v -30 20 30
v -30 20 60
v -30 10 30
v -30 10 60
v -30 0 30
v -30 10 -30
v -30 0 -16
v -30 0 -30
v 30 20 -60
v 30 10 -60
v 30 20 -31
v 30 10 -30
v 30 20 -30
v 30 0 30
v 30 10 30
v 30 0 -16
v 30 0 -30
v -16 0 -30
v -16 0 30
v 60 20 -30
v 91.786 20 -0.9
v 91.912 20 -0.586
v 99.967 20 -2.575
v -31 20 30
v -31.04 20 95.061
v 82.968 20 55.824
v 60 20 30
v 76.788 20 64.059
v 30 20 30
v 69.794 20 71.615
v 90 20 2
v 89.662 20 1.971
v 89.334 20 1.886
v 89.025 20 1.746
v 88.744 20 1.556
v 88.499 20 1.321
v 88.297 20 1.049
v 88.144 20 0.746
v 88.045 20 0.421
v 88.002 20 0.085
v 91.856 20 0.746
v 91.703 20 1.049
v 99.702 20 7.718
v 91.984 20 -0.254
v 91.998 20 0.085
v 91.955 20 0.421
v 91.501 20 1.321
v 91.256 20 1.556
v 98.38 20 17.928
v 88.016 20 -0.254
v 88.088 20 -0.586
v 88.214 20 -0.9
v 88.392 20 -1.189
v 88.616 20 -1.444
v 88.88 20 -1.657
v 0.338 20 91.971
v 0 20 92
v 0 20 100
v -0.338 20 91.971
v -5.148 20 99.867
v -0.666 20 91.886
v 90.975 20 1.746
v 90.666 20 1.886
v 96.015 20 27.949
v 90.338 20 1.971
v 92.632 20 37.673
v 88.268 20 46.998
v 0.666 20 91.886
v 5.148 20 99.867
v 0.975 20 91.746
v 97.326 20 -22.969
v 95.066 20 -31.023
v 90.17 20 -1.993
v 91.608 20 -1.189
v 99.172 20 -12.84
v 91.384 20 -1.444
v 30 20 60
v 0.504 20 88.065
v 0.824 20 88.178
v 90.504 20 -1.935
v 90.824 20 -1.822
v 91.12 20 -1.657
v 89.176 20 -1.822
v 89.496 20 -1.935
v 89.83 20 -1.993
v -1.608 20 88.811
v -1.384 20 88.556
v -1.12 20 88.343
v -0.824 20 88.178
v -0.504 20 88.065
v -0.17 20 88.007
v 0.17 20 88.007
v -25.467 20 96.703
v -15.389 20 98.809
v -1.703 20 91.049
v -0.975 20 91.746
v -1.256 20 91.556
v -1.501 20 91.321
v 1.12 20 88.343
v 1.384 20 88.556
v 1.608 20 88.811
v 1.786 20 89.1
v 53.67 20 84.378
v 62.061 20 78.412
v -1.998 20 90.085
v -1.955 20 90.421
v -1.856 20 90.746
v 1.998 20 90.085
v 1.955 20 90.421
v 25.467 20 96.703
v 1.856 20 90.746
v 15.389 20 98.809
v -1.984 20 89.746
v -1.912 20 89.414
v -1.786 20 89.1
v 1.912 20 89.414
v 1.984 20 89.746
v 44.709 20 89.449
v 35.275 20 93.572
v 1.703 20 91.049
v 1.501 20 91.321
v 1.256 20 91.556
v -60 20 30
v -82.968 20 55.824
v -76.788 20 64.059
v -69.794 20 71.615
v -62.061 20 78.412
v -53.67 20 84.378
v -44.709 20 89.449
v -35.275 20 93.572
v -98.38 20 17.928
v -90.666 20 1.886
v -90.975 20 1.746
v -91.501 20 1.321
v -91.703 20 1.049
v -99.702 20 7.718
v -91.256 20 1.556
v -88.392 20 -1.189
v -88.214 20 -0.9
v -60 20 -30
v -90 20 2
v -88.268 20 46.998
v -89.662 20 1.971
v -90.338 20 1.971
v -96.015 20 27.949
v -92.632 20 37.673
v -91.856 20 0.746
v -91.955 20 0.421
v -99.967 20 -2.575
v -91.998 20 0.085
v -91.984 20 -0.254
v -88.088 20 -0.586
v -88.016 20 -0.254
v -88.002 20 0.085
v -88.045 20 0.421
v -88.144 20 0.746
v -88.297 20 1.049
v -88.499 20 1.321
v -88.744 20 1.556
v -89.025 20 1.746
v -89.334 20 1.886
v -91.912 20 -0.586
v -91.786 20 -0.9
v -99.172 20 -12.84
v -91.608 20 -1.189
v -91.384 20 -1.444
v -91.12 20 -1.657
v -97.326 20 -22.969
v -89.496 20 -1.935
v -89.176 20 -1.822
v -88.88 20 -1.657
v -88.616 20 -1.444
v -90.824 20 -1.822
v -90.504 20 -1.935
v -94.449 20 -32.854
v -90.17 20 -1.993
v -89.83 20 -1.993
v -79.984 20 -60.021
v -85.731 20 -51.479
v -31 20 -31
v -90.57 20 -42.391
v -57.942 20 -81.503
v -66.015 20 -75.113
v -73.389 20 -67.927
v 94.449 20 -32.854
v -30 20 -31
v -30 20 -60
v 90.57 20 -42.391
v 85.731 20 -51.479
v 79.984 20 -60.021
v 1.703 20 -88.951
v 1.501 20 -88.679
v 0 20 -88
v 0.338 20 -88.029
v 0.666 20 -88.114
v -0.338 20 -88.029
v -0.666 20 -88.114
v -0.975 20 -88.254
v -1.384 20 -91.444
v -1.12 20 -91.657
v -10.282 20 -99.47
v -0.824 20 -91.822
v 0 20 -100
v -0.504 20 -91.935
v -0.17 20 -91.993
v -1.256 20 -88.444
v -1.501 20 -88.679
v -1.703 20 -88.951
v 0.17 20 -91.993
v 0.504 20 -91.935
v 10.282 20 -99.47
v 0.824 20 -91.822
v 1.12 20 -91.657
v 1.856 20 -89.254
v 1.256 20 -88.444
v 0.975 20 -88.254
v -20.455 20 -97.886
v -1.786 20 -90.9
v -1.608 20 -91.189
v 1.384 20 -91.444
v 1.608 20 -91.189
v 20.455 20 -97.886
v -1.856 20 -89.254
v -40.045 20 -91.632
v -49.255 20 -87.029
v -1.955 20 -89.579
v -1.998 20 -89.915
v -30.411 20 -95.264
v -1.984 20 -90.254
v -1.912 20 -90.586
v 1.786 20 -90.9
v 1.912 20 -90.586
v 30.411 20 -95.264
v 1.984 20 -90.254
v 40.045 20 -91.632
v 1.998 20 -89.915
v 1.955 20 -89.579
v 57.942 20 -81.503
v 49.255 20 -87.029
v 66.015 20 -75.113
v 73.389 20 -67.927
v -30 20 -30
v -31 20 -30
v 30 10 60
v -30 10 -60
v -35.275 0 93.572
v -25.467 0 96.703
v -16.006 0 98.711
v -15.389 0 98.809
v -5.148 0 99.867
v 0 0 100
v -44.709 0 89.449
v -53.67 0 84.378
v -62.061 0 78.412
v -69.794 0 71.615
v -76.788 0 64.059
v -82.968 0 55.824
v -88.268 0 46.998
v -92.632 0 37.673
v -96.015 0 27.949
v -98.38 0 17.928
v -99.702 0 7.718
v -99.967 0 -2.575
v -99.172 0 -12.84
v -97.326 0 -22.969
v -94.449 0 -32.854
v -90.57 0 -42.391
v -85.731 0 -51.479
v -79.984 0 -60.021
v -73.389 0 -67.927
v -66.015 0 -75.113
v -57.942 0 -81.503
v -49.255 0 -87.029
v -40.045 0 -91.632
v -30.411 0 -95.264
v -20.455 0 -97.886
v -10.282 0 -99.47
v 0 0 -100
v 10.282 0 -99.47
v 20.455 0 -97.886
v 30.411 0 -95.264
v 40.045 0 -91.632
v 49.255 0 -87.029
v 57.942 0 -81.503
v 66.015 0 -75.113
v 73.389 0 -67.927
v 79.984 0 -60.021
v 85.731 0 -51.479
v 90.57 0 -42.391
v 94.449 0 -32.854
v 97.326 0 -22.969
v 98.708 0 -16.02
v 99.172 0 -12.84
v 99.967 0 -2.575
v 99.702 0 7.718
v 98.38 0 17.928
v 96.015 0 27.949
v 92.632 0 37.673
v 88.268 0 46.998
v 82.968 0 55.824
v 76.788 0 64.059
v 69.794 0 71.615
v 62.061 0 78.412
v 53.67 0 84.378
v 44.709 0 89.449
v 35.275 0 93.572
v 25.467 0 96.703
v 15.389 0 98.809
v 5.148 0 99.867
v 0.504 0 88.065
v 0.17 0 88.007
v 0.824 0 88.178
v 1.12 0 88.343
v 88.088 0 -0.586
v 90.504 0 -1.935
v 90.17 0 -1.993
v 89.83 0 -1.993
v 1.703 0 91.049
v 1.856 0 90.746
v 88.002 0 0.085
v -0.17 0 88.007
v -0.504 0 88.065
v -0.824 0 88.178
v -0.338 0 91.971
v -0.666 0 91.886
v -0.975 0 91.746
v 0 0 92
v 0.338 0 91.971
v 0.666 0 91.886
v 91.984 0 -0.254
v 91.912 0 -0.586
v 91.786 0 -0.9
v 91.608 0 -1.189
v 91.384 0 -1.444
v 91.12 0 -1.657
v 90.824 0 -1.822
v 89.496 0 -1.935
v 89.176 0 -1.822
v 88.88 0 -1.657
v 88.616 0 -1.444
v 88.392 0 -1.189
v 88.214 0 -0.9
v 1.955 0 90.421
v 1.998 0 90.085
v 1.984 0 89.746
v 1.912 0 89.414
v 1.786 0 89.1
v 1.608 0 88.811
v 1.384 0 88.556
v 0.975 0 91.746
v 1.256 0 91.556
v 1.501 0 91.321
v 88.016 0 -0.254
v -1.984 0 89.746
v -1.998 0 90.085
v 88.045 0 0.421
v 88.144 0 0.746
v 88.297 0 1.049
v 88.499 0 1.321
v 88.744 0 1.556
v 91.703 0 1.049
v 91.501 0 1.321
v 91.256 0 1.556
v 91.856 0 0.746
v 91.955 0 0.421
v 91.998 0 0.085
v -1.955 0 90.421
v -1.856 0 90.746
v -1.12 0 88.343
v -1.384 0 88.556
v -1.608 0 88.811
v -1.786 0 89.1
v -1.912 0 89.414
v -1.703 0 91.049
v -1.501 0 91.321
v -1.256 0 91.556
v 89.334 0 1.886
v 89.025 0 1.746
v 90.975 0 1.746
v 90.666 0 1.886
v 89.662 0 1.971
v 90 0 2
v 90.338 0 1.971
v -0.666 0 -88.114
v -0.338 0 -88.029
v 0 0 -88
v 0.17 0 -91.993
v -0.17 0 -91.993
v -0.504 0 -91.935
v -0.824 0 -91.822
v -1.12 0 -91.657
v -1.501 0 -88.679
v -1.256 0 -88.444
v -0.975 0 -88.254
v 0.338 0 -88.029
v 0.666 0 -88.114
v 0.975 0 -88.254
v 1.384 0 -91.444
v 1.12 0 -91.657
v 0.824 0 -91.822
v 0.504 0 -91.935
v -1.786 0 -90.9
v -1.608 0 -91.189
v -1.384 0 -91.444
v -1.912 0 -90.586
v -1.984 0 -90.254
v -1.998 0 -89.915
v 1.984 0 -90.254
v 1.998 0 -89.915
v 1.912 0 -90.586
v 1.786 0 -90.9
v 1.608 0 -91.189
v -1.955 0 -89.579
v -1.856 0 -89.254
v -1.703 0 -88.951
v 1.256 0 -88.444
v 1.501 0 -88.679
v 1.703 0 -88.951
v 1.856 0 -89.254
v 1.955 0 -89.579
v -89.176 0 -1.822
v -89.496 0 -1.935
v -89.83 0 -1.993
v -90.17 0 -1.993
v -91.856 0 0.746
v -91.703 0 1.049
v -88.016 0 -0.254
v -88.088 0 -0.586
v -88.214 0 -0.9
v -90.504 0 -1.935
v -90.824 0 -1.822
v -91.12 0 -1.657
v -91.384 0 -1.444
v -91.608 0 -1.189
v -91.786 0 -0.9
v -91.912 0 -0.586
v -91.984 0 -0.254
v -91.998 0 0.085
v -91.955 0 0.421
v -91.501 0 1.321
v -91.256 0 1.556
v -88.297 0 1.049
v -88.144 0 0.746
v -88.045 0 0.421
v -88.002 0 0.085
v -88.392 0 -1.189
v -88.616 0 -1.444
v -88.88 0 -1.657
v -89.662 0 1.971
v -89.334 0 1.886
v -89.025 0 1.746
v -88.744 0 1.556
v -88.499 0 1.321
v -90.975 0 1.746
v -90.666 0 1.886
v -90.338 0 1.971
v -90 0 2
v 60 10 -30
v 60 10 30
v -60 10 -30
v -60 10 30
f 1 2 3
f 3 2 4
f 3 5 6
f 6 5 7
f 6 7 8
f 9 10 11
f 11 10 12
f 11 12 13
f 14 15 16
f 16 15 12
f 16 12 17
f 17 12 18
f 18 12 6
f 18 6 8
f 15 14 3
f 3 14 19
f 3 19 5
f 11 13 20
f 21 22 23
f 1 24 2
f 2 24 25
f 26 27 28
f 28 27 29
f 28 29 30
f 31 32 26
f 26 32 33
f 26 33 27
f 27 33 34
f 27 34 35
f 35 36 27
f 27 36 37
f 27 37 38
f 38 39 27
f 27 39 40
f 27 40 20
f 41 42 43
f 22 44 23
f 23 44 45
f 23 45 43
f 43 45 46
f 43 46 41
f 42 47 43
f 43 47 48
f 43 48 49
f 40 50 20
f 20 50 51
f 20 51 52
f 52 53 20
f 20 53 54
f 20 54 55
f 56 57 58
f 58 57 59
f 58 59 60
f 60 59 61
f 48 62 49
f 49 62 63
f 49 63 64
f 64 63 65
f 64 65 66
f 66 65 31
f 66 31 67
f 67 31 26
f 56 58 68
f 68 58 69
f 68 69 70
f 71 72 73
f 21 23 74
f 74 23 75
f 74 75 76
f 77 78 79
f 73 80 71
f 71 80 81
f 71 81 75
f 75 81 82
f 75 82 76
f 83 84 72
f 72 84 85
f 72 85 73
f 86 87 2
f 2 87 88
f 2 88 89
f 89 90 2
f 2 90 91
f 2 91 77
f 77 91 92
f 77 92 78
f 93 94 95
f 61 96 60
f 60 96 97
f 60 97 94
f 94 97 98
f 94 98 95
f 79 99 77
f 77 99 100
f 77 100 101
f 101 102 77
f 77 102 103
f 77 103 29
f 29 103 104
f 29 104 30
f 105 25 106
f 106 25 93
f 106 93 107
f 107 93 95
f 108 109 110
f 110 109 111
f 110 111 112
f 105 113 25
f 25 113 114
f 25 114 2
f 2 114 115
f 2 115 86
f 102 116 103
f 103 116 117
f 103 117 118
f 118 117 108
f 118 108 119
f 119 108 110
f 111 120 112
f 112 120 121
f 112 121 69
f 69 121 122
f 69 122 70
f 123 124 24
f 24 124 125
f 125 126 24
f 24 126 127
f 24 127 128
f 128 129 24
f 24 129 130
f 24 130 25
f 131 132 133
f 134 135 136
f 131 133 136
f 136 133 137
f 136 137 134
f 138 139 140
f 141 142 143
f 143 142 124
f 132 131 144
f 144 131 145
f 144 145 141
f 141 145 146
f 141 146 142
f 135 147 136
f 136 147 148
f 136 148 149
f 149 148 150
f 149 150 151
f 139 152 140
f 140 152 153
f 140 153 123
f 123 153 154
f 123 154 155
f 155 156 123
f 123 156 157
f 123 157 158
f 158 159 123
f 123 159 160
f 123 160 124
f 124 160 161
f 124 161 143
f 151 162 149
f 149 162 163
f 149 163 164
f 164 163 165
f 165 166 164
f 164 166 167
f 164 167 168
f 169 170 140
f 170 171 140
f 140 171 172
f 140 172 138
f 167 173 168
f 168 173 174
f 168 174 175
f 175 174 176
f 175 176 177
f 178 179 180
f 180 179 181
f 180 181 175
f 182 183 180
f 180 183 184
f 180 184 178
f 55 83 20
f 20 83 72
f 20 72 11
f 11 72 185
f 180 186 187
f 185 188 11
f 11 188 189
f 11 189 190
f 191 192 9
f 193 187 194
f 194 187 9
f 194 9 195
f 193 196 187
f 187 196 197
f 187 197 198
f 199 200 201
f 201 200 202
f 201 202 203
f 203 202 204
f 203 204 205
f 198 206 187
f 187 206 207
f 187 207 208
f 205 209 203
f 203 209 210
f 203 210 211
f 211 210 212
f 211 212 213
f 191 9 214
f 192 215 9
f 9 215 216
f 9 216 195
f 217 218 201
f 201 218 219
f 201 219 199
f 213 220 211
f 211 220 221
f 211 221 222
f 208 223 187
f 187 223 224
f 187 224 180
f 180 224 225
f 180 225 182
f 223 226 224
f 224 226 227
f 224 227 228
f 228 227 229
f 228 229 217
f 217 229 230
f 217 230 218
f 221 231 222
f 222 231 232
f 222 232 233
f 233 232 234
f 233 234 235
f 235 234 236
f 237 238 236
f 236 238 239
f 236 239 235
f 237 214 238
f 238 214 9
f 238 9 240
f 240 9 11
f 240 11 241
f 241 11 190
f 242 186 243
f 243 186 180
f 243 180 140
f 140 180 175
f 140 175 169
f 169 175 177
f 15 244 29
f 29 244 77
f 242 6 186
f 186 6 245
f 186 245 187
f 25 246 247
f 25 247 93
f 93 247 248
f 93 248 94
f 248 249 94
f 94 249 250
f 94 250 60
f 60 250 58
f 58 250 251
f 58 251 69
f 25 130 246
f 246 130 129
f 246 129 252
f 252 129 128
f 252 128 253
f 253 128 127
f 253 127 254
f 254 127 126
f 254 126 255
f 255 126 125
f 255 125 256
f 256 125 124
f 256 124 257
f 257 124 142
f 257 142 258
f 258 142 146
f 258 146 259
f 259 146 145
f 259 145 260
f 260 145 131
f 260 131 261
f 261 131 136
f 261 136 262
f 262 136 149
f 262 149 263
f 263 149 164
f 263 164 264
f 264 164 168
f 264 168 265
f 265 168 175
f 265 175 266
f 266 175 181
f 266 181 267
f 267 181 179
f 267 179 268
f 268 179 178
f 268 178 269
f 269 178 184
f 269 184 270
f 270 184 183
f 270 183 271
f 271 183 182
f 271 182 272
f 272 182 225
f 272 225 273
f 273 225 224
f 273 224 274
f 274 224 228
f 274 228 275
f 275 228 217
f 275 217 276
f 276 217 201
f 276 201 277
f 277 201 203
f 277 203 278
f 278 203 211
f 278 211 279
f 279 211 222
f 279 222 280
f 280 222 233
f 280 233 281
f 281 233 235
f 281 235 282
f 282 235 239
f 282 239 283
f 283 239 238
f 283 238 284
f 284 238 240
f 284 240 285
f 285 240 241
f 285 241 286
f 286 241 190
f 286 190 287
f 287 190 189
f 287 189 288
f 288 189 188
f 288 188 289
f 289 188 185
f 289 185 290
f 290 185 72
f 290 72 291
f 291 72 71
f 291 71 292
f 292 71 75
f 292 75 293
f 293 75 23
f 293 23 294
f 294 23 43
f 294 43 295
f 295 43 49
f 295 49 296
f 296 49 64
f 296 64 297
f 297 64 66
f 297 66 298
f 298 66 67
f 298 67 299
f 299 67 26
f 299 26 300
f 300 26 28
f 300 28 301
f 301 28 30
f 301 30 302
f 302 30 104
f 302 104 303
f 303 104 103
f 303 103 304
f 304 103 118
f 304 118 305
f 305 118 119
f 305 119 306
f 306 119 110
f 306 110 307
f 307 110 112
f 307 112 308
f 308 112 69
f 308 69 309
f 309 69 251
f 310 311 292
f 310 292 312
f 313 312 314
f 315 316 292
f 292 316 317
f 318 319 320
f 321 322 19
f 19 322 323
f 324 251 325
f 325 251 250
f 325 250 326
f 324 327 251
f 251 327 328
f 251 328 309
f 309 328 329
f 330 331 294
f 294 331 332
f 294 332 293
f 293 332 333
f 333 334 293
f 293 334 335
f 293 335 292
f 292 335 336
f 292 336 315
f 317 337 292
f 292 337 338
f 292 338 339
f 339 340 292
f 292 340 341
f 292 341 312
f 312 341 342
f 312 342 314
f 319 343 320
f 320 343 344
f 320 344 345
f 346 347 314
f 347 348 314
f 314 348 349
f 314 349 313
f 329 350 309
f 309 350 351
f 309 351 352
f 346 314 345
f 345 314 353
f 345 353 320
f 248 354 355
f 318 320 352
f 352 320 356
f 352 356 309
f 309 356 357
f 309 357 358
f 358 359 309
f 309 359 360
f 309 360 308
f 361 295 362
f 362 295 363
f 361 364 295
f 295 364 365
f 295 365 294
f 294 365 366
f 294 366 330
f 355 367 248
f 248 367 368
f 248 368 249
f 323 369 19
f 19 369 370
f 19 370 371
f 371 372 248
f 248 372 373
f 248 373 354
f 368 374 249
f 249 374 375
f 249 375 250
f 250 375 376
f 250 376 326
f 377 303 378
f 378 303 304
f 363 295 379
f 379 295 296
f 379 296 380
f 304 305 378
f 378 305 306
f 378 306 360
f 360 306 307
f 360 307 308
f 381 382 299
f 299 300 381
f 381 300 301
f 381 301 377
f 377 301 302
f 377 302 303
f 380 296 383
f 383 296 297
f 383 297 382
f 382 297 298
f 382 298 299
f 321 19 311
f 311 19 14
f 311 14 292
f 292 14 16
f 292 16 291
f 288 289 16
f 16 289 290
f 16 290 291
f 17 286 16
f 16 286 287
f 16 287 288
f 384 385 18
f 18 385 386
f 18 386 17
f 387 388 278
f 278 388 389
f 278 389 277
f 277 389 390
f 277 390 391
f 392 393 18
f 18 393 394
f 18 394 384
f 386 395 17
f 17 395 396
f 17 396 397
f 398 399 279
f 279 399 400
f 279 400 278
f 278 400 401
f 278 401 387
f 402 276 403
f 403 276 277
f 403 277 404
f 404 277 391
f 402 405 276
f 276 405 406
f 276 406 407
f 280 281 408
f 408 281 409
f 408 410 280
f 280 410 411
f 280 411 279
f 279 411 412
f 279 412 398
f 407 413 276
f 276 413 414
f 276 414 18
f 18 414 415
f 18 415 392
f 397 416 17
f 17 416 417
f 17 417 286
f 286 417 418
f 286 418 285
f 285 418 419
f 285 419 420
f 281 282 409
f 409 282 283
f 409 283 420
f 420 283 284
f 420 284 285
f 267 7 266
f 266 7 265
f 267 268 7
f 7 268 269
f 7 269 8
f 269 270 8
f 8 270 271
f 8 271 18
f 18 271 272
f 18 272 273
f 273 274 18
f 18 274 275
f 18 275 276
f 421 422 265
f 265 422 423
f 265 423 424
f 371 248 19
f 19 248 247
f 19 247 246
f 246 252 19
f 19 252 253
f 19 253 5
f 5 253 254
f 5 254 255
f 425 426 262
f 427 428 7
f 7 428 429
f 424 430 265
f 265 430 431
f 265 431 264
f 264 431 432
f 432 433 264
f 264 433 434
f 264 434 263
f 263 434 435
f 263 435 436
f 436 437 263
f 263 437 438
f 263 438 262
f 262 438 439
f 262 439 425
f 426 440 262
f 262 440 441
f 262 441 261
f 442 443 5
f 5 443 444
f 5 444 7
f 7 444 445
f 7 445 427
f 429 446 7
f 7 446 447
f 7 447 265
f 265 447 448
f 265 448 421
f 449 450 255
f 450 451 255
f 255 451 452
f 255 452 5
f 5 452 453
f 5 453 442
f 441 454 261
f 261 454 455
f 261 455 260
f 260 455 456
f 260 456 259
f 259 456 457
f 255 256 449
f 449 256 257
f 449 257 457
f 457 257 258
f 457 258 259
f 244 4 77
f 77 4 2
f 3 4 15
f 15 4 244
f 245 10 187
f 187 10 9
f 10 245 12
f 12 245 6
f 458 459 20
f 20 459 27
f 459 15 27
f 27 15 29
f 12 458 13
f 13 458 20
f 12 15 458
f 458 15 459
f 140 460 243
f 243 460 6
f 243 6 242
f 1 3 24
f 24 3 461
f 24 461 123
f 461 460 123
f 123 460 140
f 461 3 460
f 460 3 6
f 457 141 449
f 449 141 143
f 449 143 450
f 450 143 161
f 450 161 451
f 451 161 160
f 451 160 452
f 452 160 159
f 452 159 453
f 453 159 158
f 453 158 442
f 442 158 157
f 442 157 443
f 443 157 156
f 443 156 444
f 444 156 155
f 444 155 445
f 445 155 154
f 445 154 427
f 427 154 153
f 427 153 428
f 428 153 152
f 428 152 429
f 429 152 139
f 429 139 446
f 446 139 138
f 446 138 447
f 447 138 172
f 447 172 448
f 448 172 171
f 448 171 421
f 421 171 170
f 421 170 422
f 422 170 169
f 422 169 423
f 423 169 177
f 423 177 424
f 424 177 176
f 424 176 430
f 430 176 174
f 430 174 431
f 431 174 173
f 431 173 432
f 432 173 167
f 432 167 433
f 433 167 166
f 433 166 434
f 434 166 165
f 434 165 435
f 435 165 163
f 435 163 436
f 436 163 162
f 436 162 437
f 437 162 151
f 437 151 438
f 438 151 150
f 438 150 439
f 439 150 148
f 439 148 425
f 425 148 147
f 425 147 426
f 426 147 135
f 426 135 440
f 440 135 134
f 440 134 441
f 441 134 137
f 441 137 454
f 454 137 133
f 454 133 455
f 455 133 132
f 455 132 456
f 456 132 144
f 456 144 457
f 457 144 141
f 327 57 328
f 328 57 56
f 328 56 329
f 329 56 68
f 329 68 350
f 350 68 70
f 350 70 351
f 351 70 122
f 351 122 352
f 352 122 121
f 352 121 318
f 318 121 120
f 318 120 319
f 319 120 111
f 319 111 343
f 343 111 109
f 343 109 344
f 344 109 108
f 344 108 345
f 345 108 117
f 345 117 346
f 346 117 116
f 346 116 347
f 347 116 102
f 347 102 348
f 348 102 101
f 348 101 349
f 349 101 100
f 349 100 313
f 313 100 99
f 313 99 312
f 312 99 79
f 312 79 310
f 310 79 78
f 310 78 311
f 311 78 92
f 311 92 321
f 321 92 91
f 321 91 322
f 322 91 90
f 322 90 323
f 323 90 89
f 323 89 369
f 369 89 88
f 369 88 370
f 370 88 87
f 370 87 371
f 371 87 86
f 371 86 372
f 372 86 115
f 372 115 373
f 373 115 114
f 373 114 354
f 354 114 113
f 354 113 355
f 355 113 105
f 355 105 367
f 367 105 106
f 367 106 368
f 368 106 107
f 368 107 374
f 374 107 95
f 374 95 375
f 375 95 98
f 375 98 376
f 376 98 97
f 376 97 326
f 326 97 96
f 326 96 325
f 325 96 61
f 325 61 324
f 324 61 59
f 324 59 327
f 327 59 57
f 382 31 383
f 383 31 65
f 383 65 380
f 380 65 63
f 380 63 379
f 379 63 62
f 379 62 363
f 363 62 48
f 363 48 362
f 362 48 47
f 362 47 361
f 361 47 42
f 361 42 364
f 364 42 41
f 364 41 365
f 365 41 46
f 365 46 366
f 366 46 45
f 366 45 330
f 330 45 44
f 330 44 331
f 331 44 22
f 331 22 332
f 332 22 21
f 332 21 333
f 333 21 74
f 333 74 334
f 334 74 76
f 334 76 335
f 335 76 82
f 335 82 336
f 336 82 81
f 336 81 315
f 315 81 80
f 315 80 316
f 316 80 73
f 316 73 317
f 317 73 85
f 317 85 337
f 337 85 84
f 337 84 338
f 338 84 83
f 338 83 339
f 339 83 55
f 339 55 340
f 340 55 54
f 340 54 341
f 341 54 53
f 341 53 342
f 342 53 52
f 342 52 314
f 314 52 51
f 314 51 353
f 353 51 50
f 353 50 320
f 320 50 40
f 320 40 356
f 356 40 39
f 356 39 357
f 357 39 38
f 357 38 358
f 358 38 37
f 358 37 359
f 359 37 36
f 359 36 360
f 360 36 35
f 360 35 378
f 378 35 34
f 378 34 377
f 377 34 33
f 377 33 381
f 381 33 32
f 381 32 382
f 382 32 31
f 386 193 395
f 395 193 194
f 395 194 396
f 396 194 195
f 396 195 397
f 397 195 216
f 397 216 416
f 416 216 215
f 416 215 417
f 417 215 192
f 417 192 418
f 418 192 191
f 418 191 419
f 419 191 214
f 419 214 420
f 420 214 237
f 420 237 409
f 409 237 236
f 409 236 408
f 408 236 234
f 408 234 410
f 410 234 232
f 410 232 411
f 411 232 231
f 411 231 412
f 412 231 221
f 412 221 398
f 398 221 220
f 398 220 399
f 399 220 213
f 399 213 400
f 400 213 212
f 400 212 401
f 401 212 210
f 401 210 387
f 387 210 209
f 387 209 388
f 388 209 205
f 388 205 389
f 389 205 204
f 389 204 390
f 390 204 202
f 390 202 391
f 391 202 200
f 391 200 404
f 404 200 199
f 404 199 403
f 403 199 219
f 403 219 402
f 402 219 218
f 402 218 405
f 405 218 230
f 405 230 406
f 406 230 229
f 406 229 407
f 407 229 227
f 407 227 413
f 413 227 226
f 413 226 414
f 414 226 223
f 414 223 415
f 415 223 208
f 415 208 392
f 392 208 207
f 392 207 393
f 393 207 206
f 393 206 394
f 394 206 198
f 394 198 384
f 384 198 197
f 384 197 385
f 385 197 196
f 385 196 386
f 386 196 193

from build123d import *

# Parameters (mm, degrees)
ESQUISSE2_R             = 100
ESQUISSE2_W             = 60
ESQUISSE2_H             = 60
BOSS_EXTRU_6_DEPTH      = 20
ESQUISSE3_W             = 60
ESQUISSE3_H             = 30
ESQUISSE3_W_2           = 30
ESQUISSE3_H_2           = 60
ENL_V_MAT_EXTRU_7_DEPTH = 10
ESQUISSE7_R             = 2
ENL_V_MAT_EXTRU_8_DEPTH = 20


with BuildPart() as part:
    # Esquisse2 → Boss.-Extru.6 (new body)
    with BuildSketch(Plane(origin=(0, 0, 0), x_dir=(1, 0, 0), z_dir=(0, 1, 0))):
        with Locations(Location((0, 0, 0), (0, 0, 270))):
            Circle(ESQUISSE2_R)
        Rectangle(ESQUISSE2_W, ESQUISSE2_H, mode=Mode.SUBTRACT)
    extrude(amount=BOSS_EXTRU_6_DEPTH)

    # Esquisse3 → Enlèv. mat.-Extru.7 (cut)
    with BuildSketch(Plane(origin=(0, 20, 0), x_dir=(1, 0, 0), z_dir=(0, 1, 0))):
        with Locations((0, 45)):
            Rectangle(ESQUISSE3_W, ESQUISSE3_H)
        with Locations((45, 0)):
            Rectangle(ESQUISSE3_W_2, ESQUISSE3_H_2)
        with Locations((0, -45)):
            Rectangle(ESQUISSE3_W, ESQUISSE3_H)
        with Locations((-45, 0)):
            Rectangle(ESQUISSE3_W_2, ESQUISSE3_H_2)
    extrude(amount=-ENL_V_MAT_EXTRU_7_DEPTH, mode=Mode.SUBTRACT)

    # Esquisse7 → Enlèv. mat.-Extru.8 (cut)
    with BuildSketch(Plane(origin=(0, 20, 0), x_dir=(1, 0, 0), z_dir=(0, 1, 0))):
        with Locations(Location((0, 90, 0), (0, 0, 270))):
            Circle(ESQUISSE7_R)
        with Locations(Location((90, 0, 0), (0, 0, 270))):
            Circle(ESQUISSE7_R)
        with Locations(Location((0, -90, 0), (0, 0, 270))):
            Circle(ESQUISSE7_R)
        with Locations(Location((-90, 0, 0), (0, 0, 270))):
            Circle(ESQUISSE7_R)
    extrude(amount=-ENL_V_MAT_EXTRU_8_DEPTH, mode=Mode.SUBTRACT)


solid = part.part
